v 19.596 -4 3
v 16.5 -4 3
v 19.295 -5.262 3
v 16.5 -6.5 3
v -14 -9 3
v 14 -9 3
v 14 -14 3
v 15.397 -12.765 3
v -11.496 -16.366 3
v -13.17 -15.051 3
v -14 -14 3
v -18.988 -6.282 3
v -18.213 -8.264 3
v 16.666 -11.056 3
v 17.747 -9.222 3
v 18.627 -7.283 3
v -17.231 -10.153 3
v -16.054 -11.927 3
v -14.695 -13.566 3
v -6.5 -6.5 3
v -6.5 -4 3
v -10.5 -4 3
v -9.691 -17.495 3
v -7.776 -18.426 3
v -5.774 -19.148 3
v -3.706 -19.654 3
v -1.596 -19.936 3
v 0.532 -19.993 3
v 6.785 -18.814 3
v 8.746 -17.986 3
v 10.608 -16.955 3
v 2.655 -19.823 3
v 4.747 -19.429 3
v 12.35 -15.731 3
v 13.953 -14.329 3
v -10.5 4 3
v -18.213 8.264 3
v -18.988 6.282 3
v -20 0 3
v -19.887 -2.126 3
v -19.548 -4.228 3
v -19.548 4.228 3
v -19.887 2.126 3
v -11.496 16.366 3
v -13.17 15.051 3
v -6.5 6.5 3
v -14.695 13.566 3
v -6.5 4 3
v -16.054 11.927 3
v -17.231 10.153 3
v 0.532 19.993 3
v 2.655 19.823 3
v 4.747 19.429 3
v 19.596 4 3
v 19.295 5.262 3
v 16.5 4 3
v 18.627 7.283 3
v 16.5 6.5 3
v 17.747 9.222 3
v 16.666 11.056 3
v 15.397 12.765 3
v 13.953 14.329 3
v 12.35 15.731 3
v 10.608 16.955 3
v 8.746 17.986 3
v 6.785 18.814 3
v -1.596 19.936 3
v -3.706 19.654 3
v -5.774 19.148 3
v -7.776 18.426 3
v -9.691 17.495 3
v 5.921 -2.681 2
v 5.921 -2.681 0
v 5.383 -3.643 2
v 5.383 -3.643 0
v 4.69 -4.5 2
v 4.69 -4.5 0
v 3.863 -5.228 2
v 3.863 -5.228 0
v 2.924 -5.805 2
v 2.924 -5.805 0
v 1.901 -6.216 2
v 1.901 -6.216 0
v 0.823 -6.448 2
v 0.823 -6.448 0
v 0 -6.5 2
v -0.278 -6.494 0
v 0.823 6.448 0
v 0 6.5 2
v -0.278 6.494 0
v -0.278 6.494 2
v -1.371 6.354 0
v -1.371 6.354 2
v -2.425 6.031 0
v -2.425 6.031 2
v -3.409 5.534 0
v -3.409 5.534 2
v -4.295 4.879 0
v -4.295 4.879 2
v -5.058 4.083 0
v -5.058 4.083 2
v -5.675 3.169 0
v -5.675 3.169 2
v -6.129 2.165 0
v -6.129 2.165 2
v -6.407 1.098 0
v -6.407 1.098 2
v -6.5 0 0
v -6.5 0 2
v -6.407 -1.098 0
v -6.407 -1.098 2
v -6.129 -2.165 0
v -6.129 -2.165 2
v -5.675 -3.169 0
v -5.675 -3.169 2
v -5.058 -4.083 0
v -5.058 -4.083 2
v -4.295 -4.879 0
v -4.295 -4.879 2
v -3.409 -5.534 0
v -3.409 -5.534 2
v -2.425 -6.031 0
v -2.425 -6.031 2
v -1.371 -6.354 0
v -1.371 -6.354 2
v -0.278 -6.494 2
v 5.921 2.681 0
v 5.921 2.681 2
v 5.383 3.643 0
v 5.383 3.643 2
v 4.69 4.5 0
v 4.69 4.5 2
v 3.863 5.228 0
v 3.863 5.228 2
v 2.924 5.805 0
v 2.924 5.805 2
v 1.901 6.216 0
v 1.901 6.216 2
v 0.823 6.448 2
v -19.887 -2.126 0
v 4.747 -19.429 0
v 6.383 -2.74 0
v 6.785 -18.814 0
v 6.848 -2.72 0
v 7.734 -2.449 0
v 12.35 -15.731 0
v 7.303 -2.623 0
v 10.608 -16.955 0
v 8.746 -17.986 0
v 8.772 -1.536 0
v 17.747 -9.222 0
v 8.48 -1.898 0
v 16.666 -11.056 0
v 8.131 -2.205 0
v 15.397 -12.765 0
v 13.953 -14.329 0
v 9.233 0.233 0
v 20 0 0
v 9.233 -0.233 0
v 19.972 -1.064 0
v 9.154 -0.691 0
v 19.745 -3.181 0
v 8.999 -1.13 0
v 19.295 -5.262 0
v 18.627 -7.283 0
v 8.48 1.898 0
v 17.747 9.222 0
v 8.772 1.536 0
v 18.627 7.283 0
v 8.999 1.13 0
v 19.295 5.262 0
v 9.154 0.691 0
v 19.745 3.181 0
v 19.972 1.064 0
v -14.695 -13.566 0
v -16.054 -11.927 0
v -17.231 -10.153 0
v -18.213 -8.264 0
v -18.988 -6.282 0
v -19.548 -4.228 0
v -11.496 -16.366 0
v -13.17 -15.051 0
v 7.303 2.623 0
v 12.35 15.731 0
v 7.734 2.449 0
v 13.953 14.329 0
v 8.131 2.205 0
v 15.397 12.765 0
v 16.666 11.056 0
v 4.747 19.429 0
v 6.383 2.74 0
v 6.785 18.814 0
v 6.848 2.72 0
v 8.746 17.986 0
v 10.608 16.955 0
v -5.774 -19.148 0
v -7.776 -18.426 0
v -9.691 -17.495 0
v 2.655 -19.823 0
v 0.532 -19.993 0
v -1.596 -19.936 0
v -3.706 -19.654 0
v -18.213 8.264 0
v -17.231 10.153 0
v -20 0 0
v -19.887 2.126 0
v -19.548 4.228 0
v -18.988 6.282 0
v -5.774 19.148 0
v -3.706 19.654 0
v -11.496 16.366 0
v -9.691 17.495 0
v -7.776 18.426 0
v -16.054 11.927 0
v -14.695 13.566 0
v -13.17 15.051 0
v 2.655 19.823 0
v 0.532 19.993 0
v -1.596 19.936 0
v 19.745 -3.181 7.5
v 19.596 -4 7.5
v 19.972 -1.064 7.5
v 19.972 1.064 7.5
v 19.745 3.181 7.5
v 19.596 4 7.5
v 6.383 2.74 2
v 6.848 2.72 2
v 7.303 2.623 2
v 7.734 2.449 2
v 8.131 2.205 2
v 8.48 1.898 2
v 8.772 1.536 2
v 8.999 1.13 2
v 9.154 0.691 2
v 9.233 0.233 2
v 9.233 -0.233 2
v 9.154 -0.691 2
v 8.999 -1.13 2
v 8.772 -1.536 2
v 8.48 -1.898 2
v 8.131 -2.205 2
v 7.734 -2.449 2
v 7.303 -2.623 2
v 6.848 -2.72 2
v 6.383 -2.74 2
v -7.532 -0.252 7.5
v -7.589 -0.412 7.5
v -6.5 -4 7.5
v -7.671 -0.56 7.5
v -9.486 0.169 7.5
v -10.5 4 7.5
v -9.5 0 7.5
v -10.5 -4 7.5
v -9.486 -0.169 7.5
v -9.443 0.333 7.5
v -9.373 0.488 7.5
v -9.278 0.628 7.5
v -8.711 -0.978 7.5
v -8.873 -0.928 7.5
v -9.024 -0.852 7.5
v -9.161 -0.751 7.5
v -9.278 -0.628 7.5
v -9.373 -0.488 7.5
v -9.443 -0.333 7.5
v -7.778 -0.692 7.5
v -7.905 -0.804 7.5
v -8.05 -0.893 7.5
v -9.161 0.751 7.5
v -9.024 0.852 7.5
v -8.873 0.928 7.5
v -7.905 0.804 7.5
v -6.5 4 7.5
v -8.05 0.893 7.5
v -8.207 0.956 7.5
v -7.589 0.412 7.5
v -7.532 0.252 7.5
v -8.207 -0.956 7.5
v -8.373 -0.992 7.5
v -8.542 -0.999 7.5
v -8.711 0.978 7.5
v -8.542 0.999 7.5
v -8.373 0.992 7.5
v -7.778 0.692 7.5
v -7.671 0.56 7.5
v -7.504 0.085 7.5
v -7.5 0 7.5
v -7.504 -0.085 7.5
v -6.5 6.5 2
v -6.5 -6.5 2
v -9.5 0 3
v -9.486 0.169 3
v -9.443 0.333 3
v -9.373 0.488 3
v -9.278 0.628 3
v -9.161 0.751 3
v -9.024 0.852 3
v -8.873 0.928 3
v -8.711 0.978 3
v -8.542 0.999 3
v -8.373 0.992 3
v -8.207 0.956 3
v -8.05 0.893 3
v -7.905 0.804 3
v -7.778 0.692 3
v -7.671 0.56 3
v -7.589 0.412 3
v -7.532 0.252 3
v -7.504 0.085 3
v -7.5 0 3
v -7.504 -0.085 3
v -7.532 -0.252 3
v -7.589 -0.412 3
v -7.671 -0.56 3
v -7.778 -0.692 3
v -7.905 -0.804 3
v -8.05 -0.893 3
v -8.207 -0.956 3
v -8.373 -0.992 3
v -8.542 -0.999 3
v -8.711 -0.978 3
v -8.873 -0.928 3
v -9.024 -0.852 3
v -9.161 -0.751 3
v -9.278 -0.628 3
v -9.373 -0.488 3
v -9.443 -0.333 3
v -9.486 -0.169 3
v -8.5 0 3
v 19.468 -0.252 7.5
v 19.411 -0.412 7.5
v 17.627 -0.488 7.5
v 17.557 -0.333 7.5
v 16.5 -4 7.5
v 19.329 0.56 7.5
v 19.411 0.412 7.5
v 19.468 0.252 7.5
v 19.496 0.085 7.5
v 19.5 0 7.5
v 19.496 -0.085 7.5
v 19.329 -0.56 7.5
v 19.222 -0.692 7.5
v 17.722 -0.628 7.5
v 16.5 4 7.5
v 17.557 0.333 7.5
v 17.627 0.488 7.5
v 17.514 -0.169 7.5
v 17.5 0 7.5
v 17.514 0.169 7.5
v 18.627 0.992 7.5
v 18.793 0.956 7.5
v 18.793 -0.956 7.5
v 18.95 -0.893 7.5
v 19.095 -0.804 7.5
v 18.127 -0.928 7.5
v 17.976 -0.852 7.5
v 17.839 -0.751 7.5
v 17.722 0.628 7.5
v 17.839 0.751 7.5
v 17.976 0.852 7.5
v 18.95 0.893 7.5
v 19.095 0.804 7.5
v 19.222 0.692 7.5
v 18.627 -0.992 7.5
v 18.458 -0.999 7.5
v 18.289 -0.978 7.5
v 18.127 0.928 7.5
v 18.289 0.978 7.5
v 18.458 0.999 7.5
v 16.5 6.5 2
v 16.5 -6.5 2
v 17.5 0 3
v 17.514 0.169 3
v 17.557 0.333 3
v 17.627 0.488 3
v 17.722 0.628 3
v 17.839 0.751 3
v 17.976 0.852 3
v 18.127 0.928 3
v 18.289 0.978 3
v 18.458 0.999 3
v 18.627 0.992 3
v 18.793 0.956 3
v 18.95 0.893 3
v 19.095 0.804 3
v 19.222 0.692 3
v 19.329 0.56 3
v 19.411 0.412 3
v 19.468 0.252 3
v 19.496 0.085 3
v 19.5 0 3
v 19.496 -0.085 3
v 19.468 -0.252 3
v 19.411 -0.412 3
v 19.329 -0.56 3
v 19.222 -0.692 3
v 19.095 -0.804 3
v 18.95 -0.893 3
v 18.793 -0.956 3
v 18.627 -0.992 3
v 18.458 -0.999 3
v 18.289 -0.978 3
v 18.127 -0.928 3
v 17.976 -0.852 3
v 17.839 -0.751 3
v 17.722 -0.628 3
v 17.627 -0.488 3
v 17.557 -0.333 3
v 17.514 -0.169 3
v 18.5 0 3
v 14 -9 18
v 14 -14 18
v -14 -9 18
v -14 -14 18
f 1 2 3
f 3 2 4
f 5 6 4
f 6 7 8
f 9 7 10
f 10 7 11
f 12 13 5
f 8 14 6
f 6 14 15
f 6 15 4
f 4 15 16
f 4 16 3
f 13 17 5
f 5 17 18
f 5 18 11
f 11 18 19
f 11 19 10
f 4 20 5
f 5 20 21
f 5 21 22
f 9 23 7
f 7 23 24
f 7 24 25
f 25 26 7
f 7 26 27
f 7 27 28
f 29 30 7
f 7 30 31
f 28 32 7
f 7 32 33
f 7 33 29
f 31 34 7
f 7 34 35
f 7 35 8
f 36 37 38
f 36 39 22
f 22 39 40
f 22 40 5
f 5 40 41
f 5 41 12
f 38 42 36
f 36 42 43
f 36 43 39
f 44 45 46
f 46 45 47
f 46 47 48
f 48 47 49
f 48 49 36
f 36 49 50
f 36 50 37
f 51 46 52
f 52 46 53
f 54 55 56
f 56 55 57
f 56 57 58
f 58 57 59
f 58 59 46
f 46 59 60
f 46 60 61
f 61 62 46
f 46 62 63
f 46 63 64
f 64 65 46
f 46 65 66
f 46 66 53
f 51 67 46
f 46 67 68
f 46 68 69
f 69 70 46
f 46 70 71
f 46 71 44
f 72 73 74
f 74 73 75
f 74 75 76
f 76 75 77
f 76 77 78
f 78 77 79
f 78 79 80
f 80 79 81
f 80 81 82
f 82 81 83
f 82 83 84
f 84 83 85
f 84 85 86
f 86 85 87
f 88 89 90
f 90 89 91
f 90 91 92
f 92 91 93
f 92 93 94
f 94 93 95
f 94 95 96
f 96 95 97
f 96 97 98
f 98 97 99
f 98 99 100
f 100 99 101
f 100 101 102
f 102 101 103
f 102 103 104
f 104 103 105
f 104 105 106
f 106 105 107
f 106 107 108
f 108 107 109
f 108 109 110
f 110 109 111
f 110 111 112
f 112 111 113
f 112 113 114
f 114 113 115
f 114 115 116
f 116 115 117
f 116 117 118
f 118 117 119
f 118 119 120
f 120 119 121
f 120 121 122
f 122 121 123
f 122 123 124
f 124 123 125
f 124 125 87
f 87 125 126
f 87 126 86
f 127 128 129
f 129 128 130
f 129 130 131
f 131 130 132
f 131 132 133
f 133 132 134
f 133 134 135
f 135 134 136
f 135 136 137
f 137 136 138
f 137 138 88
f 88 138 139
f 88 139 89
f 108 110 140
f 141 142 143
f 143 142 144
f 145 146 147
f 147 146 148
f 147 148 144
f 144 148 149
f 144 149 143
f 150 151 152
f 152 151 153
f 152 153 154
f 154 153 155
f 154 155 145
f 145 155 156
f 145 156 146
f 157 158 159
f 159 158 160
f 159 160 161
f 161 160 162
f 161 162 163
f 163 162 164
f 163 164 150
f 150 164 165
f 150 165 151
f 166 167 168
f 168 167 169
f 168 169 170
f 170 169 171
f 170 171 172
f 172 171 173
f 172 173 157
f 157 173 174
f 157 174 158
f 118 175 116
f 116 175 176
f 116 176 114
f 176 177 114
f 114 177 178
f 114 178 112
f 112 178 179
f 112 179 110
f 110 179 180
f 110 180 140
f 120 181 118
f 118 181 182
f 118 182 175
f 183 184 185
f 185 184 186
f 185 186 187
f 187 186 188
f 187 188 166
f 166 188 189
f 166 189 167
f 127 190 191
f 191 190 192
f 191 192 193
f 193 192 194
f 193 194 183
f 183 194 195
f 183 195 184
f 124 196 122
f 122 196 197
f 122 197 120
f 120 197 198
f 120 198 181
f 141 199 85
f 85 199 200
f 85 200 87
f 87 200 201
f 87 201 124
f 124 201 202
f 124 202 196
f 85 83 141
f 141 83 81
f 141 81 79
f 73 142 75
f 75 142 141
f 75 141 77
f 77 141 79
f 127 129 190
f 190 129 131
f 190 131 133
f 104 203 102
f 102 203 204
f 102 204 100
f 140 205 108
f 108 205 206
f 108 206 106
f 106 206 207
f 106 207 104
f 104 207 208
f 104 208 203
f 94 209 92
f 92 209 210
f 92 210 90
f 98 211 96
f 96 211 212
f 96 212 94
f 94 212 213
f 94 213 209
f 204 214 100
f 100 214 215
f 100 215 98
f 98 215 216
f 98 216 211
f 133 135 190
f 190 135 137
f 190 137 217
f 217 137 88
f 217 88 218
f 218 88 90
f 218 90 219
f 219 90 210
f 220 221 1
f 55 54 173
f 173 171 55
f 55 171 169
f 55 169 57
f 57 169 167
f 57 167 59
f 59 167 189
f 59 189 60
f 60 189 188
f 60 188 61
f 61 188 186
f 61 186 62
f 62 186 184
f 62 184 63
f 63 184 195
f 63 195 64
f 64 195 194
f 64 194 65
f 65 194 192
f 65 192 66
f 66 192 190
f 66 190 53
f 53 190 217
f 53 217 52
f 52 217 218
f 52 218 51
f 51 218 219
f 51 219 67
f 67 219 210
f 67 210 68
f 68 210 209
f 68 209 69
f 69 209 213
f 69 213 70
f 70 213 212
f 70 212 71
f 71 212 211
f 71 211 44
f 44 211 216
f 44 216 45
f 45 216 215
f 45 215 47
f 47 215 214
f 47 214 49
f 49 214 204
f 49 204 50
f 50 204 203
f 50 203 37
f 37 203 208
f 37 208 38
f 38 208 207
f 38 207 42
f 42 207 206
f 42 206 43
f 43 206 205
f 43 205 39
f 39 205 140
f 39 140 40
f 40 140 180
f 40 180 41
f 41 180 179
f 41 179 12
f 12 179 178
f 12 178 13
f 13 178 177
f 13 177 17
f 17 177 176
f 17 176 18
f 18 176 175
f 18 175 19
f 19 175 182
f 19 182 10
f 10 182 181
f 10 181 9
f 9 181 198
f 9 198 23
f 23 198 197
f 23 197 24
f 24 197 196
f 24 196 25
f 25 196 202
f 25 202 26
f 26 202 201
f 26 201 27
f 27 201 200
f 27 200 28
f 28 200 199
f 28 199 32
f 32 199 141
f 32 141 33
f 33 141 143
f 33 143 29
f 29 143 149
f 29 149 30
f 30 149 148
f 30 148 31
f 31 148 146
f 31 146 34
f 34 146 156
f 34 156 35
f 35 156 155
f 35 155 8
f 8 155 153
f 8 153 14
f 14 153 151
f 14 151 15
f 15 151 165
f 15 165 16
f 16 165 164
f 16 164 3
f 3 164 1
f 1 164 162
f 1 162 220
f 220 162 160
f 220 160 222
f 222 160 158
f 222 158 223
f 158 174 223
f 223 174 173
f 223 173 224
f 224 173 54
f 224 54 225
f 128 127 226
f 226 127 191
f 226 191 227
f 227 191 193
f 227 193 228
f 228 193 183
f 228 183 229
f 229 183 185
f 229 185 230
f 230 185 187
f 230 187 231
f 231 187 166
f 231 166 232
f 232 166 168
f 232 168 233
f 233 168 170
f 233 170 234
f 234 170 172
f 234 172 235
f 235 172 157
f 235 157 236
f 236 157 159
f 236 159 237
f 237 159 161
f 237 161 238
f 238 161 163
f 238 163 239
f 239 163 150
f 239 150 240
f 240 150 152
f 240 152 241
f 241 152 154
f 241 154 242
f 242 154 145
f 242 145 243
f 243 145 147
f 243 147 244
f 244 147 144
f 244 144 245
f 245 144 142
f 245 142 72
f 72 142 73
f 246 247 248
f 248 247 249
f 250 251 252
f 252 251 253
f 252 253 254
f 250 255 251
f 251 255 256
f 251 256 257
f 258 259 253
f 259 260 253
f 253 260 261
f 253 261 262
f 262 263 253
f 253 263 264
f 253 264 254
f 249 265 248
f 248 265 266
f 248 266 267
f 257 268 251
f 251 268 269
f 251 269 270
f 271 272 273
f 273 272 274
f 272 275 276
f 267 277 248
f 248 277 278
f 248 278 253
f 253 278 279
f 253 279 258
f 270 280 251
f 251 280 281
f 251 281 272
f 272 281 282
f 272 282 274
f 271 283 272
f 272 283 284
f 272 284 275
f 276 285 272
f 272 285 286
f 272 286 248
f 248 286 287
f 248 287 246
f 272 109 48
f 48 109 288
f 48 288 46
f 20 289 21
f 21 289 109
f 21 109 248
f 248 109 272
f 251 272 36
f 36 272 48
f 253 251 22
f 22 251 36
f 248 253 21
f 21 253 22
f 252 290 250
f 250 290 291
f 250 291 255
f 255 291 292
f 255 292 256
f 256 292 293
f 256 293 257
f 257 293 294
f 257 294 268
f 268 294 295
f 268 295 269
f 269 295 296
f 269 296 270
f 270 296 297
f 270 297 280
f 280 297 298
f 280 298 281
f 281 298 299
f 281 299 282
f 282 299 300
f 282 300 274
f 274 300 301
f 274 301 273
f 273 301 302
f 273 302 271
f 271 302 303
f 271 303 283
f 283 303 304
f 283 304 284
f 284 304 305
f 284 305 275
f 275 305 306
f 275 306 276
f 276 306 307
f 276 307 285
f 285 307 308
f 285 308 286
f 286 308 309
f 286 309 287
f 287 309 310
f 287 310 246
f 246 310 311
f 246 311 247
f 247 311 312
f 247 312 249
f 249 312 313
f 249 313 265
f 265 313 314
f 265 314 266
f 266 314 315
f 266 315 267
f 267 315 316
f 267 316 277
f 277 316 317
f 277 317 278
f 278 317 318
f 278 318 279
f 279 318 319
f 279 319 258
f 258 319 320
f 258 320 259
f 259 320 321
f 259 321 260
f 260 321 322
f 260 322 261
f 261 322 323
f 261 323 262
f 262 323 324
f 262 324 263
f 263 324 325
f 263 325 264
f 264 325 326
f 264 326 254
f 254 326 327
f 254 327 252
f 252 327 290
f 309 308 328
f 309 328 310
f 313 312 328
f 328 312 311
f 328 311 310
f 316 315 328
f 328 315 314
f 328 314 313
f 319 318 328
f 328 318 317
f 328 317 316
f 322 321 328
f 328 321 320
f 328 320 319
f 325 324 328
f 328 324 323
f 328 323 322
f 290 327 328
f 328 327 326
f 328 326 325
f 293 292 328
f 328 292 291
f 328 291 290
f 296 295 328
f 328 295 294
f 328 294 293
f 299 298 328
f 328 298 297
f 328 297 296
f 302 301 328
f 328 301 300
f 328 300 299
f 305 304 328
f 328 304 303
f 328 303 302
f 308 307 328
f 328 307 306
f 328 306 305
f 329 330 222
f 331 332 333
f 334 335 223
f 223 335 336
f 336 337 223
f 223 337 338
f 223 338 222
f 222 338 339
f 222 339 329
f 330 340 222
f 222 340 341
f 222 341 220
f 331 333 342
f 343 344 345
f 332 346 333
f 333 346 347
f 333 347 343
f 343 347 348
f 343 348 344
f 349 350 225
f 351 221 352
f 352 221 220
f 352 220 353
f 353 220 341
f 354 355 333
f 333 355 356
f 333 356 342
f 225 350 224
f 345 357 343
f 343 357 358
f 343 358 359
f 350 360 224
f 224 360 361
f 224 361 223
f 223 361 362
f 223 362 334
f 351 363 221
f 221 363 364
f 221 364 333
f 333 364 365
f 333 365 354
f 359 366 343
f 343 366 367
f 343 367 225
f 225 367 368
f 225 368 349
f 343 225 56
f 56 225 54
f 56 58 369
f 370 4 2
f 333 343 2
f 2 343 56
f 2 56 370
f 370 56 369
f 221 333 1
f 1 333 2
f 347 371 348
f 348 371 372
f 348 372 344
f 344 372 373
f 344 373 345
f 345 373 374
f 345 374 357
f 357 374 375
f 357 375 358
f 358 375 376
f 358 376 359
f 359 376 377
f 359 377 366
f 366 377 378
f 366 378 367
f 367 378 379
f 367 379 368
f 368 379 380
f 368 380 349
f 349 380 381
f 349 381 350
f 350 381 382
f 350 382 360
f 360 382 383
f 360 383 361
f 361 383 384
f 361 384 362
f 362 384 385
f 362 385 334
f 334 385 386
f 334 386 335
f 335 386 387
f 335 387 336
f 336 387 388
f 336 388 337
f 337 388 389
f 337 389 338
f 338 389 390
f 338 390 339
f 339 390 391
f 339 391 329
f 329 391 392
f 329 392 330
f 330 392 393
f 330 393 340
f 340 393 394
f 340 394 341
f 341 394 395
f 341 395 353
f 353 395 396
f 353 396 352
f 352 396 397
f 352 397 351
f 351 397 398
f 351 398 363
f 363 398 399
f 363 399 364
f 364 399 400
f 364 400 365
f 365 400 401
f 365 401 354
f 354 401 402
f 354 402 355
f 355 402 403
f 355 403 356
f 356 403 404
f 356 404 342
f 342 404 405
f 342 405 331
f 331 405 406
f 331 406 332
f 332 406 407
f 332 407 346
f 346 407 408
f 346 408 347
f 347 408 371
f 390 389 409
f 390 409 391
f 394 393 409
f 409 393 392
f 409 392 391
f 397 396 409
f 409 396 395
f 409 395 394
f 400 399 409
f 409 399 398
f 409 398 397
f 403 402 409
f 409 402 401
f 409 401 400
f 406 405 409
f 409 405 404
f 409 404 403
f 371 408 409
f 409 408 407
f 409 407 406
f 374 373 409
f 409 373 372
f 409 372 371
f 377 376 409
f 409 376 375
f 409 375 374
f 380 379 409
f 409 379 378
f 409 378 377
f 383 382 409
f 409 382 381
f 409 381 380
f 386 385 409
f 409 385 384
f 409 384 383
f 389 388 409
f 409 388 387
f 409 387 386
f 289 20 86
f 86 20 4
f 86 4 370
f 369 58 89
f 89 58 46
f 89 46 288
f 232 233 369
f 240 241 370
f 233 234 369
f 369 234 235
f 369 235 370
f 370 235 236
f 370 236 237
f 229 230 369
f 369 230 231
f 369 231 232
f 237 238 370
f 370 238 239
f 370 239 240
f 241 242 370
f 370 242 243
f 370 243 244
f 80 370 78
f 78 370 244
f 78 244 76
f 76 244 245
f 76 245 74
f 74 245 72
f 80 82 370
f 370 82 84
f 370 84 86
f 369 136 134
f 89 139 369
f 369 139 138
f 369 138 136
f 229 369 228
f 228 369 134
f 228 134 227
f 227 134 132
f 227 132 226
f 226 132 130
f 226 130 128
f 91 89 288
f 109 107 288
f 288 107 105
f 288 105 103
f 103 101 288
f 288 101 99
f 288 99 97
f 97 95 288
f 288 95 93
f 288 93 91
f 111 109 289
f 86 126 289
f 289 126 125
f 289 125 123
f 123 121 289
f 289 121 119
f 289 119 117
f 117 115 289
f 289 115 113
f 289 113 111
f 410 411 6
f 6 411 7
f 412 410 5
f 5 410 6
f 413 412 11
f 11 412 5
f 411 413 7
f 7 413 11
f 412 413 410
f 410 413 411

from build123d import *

# Parameters (mm, degrees)
ESBO_O1_R                = 20
RESSALTO_EXTRUS_O1_DEPTH = 3
ESBO_O2_W                = 4
ESBO_O2_H                = 8
ESBO_O2_R                = 1
RESSALTO_EXTRUS_O3_DEPTH = 4.5
ESBO_O3_W                = 23
ESBO_O3_H                = 13
CORTE_EXTRUS_O1_DEPTH    = 1
ESBO_O4_W                = 28
ESBO_O4_H                = 5
RESSALTO_EXTRUS_O4_DEPTH = 15


with BuildPart() as part:
    # Esboço1 → Ressalto-extrusão1 (new body)
    with BuildSketch(Plane.XY):
        Circle(ESBO_O1_R)
        with BuildLine():
            ThreePointArc((5.921389022, 2.680886429), (-6.5, 0), (5.921389022, -2.680886429))
            ThreePointArc((5.921389022, -2.680886429), (9.242616034, 0), (5.921389022, 2.680886429))
        make_face(mode=Mode.SUBTRACT)
    extrude(amount=RESSALTO_EXTRUS_O1_DEPTH)

    # Esboço2 → Ressalto-extrusão3 (add)
    with BuildSketch(Plane.XY.offset(3)):
        with Locations((-8.5, 0)):
            Rectangle(ESBO_O2_W, ESBO_O2_H)
        with Locations((-8.5, 0)):
            Circle(ESBO_O2_R, mode=Mode.SUBTRACT)
        with BuildLine():
            Line((16.5, -4), (19.595917942, -4))
            ThreePointArc((19.595917942, -4), (20, 0), (19.595917942, 4))
            Line((19.595917942, 4), (16.5, 4))
            Line((16.5, 4), (16.5, -4))
        make_face()
        with Locations((18.5, 0)):
            Circle(ESBO_O2_R, mode=Mode.SUBTRACT)
    extrude(amount=RESSALTO_EXTRUS_O3_DEPTH)

    # Esboço3 → Corte-extrusão1 (cut)
    with BuildSketch(Plane.XY.offset(3)):
        with Locations((5, 0)):
            Rectangle(ESBO_O3_W, ESBO_O3_H)
    extrude(amount=-CORTE_EXTRUS_O1_DEPTH, mode=Mode.SUBTRACT)

    # Esboço4 → Ressalto-extrusão4 (add)
    with BuildSketch(Plane.XY.offset(3)):
        with Locations((0, -11.5)):
            Rectangle(ESBO_O4_W, ESBO_O4_H)
    extrude(amount=RESSALTO_EXTRUS_O4_DEPTH)


solid = part.part
